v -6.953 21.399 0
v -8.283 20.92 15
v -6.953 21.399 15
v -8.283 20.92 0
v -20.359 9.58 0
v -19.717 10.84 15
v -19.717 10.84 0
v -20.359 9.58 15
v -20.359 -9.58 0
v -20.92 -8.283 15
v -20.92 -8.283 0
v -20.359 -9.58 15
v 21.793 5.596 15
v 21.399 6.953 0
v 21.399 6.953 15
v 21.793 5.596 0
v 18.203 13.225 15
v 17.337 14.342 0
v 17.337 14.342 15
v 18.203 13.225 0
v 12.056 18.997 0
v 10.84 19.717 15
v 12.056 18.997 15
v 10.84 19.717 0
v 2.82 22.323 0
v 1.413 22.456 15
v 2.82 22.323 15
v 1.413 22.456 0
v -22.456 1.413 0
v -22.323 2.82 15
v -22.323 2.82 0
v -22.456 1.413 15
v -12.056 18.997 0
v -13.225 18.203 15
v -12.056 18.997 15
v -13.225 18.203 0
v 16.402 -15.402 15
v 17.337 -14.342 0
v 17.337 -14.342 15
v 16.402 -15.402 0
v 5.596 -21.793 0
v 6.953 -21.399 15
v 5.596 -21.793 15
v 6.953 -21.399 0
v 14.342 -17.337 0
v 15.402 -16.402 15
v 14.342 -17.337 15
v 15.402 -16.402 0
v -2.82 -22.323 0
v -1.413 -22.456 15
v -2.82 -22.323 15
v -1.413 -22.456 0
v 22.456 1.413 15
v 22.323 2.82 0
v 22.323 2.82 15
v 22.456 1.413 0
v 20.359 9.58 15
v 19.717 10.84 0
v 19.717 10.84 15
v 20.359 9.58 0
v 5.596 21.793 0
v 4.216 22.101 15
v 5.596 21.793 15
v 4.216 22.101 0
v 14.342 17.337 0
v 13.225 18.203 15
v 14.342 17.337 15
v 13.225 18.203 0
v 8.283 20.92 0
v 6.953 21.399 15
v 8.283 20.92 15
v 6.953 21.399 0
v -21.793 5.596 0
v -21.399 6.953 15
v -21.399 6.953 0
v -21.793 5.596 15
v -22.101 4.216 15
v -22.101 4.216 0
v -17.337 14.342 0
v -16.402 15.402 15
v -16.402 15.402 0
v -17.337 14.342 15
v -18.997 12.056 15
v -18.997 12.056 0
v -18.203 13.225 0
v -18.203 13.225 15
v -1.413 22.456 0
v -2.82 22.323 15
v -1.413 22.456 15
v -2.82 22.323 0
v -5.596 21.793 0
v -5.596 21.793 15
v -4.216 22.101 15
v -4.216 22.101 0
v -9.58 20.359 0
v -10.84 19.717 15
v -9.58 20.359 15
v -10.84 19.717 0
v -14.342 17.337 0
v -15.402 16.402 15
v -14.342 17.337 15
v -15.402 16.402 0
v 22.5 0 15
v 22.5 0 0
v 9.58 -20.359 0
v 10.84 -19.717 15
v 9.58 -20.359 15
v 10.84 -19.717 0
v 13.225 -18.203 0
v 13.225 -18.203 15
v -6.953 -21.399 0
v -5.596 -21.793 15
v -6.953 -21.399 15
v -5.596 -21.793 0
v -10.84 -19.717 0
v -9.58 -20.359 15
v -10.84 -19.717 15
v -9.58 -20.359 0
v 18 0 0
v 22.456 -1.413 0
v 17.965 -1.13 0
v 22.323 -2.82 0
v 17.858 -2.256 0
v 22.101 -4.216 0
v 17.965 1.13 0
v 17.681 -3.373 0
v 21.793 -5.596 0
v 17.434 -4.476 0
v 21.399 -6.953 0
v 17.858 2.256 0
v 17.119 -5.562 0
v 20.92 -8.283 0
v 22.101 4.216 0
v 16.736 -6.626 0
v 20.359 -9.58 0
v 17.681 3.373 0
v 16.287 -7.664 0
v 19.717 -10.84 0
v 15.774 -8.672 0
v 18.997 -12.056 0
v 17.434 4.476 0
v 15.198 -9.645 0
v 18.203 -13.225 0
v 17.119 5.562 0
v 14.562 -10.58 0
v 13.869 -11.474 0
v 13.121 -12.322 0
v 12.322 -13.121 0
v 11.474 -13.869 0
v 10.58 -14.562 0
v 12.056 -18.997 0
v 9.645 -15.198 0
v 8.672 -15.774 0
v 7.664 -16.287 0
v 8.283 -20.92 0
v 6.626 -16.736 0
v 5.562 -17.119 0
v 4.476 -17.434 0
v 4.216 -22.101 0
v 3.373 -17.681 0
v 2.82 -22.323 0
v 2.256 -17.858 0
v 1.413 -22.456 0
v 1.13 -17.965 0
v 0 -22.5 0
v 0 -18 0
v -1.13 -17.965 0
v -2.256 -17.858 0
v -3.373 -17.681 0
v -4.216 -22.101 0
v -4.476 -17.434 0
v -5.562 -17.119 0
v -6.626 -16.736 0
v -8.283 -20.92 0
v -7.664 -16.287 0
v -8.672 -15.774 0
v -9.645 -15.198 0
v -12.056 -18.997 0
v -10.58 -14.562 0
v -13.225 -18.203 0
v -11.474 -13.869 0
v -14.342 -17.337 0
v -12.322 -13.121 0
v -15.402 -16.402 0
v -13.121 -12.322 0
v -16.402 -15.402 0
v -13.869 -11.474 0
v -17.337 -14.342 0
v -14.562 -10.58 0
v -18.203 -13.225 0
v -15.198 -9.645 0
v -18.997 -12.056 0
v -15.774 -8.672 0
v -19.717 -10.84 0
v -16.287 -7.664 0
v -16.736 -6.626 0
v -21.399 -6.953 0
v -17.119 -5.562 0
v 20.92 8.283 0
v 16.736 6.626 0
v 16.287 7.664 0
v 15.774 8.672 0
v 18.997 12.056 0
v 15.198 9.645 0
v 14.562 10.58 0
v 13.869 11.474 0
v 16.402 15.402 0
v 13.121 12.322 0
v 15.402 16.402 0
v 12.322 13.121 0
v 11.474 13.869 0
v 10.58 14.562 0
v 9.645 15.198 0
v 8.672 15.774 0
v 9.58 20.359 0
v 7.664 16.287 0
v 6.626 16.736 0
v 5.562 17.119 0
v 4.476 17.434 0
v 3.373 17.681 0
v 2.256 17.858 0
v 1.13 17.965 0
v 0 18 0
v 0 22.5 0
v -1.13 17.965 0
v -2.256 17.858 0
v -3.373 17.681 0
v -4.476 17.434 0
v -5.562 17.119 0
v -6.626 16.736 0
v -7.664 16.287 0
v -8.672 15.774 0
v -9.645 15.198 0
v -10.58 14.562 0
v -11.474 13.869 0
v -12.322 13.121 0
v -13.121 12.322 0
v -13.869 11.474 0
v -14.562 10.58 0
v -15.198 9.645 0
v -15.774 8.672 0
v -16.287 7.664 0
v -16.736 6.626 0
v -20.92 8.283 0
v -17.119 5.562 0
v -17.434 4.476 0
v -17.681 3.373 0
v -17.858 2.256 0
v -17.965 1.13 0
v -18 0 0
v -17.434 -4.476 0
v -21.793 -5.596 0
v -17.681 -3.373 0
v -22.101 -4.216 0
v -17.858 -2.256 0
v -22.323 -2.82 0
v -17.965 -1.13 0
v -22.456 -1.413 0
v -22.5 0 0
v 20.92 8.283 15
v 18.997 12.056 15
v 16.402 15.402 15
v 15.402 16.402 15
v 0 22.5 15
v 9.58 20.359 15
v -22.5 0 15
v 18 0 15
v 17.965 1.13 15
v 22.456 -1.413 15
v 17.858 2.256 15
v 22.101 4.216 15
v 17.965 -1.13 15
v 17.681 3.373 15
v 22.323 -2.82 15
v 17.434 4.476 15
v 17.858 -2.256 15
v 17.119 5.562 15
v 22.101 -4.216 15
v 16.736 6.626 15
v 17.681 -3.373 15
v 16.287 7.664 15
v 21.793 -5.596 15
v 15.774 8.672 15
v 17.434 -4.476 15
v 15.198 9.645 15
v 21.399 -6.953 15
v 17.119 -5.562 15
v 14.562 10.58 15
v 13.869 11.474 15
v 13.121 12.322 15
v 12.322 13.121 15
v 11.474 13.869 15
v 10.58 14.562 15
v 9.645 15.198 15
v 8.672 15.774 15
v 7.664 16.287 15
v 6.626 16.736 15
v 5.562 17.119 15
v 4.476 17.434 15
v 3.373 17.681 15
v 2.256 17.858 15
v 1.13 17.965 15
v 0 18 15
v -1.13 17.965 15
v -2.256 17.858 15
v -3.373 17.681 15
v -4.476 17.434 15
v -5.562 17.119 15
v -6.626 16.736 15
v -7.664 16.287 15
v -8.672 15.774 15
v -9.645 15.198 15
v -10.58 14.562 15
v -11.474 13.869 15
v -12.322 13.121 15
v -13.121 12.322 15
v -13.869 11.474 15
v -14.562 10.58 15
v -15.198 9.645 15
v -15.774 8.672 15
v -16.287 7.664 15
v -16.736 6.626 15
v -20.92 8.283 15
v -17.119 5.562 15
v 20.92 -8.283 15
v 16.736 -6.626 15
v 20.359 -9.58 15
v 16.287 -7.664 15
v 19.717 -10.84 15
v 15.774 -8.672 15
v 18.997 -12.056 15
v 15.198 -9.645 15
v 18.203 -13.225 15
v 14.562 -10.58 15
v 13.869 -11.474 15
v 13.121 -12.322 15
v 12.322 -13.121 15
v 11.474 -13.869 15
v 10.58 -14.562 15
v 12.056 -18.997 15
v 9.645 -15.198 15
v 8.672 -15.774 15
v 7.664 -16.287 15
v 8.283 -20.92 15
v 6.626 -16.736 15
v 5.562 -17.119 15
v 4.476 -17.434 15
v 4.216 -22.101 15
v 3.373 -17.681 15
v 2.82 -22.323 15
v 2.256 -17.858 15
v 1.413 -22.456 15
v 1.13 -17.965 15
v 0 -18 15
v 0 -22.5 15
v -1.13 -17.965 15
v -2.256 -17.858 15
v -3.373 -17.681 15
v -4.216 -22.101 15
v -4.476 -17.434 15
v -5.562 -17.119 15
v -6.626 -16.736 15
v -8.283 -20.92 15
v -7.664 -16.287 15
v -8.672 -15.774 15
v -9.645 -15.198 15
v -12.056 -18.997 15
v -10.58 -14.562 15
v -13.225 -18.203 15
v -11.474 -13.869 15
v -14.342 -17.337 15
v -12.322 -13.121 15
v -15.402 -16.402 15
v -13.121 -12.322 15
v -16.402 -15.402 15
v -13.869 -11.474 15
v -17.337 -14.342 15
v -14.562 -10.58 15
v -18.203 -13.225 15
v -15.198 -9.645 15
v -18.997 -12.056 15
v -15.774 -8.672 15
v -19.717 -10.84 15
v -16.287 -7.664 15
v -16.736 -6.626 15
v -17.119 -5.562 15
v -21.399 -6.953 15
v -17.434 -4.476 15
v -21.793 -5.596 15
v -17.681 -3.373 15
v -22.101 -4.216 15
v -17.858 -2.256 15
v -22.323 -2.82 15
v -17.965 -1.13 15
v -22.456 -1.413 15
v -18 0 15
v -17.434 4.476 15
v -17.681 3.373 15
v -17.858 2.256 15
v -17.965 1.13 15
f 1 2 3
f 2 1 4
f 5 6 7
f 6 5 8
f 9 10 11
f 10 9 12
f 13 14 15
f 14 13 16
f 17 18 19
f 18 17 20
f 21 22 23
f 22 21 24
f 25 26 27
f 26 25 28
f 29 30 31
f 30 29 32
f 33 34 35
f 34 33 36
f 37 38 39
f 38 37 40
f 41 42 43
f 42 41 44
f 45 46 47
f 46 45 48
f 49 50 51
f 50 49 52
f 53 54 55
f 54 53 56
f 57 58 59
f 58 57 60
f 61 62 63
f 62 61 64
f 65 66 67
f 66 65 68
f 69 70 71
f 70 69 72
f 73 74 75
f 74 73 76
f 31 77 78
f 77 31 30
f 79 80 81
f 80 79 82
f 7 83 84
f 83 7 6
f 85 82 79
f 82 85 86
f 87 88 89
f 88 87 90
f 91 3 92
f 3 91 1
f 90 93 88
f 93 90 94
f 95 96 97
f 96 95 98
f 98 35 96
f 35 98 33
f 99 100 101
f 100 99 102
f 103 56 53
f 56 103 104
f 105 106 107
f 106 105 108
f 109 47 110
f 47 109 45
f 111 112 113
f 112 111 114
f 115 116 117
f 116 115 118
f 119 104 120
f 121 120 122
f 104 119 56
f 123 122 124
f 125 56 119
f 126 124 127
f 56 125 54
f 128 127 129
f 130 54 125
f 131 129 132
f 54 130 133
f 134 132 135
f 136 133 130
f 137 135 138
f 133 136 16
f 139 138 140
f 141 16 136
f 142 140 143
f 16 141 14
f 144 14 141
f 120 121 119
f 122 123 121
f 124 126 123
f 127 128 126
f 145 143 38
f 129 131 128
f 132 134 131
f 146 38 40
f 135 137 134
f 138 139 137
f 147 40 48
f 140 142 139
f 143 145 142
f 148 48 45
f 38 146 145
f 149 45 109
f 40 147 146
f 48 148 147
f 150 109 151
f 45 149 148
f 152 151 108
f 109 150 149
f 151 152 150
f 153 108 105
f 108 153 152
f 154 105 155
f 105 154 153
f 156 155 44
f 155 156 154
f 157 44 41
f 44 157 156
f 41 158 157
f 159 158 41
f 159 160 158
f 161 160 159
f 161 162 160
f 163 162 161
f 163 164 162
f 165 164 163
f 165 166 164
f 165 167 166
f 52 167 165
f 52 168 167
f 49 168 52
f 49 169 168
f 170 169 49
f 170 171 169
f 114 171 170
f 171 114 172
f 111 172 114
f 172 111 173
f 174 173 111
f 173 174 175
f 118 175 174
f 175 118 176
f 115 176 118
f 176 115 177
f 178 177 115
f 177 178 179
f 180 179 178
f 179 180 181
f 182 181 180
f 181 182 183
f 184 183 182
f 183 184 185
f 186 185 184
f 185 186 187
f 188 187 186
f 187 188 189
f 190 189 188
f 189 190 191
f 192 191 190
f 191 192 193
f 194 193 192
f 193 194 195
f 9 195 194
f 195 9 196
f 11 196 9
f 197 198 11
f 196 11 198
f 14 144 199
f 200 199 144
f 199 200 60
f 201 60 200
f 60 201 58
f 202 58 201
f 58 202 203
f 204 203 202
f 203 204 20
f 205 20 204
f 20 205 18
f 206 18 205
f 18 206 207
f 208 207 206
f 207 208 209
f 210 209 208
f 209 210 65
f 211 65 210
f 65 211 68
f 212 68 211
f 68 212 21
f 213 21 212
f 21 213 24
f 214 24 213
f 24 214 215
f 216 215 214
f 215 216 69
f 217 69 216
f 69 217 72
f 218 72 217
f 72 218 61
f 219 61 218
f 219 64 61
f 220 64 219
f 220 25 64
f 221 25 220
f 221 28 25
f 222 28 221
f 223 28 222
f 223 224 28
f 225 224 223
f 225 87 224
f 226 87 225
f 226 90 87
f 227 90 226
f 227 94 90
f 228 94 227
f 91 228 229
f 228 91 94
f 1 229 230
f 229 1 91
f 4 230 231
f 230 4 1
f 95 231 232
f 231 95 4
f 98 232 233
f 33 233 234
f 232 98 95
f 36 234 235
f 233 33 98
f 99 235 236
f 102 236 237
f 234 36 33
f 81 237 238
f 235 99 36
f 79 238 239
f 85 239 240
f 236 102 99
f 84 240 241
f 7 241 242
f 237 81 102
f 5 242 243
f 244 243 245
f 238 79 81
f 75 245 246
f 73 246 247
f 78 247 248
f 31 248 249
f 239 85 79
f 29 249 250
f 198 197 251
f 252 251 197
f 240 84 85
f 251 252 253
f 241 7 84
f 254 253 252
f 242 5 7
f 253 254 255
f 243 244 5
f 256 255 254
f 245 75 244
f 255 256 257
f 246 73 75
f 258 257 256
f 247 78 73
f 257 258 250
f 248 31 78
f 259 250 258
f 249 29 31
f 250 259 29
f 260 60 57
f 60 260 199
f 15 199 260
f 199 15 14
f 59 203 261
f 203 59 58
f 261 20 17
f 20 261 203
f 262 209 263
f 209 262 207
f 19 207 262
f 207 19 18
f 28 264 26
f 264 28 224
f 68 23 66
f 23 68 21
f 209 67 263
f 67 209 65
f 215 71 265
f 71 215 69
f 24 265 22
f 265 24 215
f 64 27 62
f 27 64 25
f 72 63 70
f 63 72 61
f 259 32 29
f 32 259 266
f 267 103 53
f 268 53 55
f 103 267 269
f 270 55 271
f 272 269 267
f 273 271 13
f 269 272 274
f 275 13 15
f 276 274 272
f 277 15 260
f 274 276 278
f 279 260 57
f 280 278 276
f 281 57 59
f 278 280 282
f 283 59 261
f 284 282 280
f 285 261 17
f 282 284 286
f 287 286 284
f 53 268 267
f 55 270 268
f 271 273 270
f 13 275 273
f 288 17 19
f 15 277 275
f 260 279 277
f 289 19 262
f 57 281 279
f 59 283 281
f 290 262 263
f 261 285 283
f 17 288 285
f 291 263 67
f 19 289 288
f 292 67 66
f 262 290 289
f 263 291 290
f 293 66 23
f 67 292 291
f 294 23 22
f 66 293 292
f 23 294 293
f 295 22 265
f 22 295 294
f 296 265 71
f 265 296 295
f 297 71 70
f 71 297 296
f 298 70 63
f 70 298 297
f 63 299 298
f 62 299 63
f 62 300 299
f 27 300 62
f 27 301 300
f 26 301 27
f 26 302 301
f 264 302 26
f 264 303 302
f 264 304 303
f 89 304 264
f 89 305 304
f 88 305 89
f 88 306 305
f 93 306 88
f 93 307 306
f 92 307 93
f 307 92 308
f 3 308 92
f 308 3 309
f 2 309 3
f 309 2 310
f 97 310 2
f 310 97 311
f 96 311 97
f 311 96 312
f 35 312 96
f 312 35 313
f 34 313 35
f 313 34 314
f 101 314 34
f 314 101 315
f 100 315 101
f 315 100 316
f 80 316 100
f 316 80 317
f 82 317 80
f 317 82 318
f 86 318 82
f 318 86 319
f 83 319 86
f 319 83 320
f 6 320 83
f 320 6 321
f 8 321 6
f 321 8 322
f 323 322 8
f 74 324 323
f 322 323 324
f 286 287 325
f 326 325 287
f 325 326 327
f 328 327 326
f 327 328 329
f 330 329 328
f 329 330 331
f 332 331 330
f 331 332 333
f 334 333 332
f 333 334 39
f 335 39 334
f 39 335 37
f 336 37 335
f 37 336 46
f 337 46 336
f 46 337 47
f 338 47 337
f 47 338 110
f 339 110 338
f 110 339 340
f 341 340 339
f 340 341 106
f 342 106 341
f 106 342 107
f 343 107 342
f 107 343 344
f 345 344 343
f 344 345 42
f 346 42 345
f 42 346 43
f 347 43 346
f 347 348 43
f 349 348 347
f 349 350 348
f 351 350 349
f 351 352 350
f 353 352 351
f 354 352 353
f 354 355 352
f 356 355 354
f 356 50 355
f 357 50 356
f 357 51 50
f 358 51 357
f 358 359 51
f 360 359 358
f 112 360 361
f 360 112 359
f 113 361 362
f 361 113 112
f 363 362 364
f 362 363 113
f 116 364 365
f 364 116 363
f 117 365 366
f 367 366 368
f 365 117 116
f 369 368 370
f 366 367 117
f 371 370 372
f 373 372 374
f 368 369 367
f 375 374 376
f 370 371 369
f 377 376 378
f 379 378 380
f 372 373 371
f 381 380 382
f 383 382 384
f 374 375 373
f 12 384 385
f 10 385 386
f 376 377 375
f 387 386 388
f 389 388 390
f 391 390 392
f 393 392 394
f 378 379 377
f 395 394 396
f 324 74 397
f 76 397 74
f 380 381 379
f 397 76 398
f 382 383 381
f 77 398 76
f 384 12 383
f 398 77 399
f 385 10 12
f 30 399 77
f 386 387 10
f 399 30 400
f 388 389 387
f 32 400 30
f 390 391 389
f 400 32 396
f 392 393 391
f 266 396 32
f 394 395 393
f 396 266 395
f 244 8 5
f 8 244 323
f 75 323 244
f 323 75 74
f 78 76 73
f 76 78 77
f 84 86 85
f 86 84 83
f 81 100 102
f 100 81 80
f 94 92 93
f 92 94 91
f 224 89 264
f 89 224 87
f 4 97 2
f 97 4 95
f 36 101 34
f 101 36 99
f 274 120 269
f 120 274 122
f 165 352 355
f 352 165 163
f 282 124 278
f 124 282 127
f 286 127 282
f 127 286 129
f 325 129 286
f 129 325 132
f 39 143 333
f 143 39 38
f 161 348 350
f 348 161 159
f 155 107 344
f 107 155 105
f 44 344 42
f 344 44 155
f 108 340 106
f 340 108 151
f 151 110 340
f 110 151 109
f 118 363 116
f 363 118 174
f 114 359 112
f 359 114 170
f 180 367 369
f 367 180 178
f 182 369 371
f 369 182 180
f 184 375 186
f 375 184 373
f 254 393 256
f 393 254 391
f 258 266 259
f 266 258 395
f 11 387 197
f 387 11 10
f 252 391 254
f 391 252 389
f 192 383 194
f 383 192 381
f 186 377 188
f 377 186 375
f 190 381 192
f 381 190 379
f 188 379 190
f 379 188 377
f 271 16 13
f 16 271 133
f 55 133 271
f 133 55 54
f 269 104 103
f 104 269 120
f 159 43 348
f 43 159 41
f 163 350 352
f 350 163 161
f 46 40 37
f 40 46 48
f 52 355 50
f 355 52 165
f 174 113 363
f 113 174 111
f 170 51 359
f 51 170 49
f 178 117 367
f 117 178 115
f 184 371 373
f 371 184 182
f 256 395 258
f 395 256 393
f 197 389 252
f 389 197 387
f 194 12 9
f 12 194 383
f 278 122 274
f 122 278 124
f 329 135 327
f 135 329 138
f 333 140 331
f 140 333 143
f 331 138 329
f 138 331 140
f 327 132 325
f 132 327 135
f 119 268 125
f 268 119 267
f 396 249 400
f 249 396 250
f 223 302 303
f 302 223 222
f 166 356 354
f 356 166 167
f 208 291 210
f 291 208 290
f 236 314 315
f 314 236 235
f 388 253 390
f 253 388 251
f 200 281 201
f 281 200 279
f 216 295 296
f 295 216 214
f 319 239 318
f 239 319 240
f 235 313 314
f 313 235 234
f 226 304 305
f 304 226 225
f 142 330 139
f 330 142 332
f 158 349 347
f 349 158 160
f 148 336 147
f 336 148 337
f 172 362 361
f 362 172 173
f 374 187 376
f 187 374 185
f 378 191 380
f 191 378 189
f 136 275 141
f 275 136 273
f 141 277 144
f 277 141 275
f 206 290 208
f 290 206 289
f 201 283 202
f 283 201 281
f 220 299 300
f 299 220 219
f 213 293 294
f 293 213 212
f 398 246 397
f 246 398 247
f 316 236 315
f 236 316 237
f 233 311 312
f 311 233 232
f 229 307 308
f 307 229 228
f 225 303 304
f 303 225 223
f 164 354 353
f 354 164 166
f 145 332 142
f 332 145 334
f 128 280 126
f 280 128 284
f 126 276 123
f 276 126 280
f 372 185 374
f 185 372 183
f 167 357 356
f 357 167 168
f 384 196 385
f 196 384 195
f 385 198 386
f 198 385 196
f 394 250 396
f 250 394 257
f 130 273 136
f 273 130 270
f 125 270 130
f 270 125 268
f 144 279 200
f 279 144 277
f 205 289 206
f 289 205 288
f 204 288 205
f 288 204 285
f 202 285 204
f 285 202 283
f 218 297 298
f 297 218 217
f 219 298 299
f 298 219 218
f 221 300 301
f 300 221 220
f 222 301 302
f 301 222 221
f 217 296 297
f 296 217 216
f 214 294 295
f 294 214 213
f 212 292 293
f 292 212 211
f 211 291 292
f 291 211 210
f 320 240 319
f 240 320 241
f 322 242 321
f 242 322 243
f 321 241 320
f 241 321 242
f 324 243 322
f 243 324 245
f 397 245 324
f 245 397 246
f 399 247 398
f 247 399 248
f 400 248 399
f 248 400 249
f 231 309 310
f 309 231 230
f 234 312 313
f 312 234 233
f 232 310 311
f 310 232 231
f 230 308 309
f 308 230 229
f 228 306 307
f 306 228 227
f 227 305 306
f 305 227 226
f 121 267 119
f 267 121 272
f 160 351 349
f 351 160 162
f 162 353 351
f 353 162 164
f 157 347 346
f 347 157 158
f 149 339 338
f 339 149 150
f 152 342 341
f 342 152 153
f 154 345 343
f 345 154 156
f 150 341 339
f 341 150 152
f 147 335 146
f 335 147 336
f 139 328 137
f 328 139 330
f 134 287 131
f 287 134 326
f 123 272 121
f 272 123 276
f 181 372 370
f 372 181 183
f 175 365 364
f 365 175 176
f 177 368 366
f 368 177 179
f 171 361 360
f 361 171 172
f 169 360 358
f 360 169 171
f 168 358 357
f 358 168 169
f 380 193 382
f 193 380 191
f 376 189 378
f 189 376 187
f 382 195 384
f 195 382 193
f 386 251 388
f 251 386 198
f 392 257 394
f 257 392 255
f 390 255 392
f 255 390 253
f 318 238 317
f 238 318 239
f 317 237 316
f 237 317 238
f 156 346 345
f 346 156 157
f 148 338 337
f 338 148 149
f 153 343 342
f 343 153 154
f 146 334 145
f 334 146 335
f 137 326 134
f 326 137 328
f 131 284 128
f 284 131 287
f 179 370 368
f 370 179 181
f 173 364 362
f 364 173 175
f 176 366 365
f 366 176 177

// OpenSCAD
$fn=100;

length=15;
inner_d=36;
outer_d=45;

difference()
{
    
    cylinder(h=length, d=outer_d);
    
    translate([0,0,-1])
    cylinder(h=length+2, d=inner_d);
    
}
